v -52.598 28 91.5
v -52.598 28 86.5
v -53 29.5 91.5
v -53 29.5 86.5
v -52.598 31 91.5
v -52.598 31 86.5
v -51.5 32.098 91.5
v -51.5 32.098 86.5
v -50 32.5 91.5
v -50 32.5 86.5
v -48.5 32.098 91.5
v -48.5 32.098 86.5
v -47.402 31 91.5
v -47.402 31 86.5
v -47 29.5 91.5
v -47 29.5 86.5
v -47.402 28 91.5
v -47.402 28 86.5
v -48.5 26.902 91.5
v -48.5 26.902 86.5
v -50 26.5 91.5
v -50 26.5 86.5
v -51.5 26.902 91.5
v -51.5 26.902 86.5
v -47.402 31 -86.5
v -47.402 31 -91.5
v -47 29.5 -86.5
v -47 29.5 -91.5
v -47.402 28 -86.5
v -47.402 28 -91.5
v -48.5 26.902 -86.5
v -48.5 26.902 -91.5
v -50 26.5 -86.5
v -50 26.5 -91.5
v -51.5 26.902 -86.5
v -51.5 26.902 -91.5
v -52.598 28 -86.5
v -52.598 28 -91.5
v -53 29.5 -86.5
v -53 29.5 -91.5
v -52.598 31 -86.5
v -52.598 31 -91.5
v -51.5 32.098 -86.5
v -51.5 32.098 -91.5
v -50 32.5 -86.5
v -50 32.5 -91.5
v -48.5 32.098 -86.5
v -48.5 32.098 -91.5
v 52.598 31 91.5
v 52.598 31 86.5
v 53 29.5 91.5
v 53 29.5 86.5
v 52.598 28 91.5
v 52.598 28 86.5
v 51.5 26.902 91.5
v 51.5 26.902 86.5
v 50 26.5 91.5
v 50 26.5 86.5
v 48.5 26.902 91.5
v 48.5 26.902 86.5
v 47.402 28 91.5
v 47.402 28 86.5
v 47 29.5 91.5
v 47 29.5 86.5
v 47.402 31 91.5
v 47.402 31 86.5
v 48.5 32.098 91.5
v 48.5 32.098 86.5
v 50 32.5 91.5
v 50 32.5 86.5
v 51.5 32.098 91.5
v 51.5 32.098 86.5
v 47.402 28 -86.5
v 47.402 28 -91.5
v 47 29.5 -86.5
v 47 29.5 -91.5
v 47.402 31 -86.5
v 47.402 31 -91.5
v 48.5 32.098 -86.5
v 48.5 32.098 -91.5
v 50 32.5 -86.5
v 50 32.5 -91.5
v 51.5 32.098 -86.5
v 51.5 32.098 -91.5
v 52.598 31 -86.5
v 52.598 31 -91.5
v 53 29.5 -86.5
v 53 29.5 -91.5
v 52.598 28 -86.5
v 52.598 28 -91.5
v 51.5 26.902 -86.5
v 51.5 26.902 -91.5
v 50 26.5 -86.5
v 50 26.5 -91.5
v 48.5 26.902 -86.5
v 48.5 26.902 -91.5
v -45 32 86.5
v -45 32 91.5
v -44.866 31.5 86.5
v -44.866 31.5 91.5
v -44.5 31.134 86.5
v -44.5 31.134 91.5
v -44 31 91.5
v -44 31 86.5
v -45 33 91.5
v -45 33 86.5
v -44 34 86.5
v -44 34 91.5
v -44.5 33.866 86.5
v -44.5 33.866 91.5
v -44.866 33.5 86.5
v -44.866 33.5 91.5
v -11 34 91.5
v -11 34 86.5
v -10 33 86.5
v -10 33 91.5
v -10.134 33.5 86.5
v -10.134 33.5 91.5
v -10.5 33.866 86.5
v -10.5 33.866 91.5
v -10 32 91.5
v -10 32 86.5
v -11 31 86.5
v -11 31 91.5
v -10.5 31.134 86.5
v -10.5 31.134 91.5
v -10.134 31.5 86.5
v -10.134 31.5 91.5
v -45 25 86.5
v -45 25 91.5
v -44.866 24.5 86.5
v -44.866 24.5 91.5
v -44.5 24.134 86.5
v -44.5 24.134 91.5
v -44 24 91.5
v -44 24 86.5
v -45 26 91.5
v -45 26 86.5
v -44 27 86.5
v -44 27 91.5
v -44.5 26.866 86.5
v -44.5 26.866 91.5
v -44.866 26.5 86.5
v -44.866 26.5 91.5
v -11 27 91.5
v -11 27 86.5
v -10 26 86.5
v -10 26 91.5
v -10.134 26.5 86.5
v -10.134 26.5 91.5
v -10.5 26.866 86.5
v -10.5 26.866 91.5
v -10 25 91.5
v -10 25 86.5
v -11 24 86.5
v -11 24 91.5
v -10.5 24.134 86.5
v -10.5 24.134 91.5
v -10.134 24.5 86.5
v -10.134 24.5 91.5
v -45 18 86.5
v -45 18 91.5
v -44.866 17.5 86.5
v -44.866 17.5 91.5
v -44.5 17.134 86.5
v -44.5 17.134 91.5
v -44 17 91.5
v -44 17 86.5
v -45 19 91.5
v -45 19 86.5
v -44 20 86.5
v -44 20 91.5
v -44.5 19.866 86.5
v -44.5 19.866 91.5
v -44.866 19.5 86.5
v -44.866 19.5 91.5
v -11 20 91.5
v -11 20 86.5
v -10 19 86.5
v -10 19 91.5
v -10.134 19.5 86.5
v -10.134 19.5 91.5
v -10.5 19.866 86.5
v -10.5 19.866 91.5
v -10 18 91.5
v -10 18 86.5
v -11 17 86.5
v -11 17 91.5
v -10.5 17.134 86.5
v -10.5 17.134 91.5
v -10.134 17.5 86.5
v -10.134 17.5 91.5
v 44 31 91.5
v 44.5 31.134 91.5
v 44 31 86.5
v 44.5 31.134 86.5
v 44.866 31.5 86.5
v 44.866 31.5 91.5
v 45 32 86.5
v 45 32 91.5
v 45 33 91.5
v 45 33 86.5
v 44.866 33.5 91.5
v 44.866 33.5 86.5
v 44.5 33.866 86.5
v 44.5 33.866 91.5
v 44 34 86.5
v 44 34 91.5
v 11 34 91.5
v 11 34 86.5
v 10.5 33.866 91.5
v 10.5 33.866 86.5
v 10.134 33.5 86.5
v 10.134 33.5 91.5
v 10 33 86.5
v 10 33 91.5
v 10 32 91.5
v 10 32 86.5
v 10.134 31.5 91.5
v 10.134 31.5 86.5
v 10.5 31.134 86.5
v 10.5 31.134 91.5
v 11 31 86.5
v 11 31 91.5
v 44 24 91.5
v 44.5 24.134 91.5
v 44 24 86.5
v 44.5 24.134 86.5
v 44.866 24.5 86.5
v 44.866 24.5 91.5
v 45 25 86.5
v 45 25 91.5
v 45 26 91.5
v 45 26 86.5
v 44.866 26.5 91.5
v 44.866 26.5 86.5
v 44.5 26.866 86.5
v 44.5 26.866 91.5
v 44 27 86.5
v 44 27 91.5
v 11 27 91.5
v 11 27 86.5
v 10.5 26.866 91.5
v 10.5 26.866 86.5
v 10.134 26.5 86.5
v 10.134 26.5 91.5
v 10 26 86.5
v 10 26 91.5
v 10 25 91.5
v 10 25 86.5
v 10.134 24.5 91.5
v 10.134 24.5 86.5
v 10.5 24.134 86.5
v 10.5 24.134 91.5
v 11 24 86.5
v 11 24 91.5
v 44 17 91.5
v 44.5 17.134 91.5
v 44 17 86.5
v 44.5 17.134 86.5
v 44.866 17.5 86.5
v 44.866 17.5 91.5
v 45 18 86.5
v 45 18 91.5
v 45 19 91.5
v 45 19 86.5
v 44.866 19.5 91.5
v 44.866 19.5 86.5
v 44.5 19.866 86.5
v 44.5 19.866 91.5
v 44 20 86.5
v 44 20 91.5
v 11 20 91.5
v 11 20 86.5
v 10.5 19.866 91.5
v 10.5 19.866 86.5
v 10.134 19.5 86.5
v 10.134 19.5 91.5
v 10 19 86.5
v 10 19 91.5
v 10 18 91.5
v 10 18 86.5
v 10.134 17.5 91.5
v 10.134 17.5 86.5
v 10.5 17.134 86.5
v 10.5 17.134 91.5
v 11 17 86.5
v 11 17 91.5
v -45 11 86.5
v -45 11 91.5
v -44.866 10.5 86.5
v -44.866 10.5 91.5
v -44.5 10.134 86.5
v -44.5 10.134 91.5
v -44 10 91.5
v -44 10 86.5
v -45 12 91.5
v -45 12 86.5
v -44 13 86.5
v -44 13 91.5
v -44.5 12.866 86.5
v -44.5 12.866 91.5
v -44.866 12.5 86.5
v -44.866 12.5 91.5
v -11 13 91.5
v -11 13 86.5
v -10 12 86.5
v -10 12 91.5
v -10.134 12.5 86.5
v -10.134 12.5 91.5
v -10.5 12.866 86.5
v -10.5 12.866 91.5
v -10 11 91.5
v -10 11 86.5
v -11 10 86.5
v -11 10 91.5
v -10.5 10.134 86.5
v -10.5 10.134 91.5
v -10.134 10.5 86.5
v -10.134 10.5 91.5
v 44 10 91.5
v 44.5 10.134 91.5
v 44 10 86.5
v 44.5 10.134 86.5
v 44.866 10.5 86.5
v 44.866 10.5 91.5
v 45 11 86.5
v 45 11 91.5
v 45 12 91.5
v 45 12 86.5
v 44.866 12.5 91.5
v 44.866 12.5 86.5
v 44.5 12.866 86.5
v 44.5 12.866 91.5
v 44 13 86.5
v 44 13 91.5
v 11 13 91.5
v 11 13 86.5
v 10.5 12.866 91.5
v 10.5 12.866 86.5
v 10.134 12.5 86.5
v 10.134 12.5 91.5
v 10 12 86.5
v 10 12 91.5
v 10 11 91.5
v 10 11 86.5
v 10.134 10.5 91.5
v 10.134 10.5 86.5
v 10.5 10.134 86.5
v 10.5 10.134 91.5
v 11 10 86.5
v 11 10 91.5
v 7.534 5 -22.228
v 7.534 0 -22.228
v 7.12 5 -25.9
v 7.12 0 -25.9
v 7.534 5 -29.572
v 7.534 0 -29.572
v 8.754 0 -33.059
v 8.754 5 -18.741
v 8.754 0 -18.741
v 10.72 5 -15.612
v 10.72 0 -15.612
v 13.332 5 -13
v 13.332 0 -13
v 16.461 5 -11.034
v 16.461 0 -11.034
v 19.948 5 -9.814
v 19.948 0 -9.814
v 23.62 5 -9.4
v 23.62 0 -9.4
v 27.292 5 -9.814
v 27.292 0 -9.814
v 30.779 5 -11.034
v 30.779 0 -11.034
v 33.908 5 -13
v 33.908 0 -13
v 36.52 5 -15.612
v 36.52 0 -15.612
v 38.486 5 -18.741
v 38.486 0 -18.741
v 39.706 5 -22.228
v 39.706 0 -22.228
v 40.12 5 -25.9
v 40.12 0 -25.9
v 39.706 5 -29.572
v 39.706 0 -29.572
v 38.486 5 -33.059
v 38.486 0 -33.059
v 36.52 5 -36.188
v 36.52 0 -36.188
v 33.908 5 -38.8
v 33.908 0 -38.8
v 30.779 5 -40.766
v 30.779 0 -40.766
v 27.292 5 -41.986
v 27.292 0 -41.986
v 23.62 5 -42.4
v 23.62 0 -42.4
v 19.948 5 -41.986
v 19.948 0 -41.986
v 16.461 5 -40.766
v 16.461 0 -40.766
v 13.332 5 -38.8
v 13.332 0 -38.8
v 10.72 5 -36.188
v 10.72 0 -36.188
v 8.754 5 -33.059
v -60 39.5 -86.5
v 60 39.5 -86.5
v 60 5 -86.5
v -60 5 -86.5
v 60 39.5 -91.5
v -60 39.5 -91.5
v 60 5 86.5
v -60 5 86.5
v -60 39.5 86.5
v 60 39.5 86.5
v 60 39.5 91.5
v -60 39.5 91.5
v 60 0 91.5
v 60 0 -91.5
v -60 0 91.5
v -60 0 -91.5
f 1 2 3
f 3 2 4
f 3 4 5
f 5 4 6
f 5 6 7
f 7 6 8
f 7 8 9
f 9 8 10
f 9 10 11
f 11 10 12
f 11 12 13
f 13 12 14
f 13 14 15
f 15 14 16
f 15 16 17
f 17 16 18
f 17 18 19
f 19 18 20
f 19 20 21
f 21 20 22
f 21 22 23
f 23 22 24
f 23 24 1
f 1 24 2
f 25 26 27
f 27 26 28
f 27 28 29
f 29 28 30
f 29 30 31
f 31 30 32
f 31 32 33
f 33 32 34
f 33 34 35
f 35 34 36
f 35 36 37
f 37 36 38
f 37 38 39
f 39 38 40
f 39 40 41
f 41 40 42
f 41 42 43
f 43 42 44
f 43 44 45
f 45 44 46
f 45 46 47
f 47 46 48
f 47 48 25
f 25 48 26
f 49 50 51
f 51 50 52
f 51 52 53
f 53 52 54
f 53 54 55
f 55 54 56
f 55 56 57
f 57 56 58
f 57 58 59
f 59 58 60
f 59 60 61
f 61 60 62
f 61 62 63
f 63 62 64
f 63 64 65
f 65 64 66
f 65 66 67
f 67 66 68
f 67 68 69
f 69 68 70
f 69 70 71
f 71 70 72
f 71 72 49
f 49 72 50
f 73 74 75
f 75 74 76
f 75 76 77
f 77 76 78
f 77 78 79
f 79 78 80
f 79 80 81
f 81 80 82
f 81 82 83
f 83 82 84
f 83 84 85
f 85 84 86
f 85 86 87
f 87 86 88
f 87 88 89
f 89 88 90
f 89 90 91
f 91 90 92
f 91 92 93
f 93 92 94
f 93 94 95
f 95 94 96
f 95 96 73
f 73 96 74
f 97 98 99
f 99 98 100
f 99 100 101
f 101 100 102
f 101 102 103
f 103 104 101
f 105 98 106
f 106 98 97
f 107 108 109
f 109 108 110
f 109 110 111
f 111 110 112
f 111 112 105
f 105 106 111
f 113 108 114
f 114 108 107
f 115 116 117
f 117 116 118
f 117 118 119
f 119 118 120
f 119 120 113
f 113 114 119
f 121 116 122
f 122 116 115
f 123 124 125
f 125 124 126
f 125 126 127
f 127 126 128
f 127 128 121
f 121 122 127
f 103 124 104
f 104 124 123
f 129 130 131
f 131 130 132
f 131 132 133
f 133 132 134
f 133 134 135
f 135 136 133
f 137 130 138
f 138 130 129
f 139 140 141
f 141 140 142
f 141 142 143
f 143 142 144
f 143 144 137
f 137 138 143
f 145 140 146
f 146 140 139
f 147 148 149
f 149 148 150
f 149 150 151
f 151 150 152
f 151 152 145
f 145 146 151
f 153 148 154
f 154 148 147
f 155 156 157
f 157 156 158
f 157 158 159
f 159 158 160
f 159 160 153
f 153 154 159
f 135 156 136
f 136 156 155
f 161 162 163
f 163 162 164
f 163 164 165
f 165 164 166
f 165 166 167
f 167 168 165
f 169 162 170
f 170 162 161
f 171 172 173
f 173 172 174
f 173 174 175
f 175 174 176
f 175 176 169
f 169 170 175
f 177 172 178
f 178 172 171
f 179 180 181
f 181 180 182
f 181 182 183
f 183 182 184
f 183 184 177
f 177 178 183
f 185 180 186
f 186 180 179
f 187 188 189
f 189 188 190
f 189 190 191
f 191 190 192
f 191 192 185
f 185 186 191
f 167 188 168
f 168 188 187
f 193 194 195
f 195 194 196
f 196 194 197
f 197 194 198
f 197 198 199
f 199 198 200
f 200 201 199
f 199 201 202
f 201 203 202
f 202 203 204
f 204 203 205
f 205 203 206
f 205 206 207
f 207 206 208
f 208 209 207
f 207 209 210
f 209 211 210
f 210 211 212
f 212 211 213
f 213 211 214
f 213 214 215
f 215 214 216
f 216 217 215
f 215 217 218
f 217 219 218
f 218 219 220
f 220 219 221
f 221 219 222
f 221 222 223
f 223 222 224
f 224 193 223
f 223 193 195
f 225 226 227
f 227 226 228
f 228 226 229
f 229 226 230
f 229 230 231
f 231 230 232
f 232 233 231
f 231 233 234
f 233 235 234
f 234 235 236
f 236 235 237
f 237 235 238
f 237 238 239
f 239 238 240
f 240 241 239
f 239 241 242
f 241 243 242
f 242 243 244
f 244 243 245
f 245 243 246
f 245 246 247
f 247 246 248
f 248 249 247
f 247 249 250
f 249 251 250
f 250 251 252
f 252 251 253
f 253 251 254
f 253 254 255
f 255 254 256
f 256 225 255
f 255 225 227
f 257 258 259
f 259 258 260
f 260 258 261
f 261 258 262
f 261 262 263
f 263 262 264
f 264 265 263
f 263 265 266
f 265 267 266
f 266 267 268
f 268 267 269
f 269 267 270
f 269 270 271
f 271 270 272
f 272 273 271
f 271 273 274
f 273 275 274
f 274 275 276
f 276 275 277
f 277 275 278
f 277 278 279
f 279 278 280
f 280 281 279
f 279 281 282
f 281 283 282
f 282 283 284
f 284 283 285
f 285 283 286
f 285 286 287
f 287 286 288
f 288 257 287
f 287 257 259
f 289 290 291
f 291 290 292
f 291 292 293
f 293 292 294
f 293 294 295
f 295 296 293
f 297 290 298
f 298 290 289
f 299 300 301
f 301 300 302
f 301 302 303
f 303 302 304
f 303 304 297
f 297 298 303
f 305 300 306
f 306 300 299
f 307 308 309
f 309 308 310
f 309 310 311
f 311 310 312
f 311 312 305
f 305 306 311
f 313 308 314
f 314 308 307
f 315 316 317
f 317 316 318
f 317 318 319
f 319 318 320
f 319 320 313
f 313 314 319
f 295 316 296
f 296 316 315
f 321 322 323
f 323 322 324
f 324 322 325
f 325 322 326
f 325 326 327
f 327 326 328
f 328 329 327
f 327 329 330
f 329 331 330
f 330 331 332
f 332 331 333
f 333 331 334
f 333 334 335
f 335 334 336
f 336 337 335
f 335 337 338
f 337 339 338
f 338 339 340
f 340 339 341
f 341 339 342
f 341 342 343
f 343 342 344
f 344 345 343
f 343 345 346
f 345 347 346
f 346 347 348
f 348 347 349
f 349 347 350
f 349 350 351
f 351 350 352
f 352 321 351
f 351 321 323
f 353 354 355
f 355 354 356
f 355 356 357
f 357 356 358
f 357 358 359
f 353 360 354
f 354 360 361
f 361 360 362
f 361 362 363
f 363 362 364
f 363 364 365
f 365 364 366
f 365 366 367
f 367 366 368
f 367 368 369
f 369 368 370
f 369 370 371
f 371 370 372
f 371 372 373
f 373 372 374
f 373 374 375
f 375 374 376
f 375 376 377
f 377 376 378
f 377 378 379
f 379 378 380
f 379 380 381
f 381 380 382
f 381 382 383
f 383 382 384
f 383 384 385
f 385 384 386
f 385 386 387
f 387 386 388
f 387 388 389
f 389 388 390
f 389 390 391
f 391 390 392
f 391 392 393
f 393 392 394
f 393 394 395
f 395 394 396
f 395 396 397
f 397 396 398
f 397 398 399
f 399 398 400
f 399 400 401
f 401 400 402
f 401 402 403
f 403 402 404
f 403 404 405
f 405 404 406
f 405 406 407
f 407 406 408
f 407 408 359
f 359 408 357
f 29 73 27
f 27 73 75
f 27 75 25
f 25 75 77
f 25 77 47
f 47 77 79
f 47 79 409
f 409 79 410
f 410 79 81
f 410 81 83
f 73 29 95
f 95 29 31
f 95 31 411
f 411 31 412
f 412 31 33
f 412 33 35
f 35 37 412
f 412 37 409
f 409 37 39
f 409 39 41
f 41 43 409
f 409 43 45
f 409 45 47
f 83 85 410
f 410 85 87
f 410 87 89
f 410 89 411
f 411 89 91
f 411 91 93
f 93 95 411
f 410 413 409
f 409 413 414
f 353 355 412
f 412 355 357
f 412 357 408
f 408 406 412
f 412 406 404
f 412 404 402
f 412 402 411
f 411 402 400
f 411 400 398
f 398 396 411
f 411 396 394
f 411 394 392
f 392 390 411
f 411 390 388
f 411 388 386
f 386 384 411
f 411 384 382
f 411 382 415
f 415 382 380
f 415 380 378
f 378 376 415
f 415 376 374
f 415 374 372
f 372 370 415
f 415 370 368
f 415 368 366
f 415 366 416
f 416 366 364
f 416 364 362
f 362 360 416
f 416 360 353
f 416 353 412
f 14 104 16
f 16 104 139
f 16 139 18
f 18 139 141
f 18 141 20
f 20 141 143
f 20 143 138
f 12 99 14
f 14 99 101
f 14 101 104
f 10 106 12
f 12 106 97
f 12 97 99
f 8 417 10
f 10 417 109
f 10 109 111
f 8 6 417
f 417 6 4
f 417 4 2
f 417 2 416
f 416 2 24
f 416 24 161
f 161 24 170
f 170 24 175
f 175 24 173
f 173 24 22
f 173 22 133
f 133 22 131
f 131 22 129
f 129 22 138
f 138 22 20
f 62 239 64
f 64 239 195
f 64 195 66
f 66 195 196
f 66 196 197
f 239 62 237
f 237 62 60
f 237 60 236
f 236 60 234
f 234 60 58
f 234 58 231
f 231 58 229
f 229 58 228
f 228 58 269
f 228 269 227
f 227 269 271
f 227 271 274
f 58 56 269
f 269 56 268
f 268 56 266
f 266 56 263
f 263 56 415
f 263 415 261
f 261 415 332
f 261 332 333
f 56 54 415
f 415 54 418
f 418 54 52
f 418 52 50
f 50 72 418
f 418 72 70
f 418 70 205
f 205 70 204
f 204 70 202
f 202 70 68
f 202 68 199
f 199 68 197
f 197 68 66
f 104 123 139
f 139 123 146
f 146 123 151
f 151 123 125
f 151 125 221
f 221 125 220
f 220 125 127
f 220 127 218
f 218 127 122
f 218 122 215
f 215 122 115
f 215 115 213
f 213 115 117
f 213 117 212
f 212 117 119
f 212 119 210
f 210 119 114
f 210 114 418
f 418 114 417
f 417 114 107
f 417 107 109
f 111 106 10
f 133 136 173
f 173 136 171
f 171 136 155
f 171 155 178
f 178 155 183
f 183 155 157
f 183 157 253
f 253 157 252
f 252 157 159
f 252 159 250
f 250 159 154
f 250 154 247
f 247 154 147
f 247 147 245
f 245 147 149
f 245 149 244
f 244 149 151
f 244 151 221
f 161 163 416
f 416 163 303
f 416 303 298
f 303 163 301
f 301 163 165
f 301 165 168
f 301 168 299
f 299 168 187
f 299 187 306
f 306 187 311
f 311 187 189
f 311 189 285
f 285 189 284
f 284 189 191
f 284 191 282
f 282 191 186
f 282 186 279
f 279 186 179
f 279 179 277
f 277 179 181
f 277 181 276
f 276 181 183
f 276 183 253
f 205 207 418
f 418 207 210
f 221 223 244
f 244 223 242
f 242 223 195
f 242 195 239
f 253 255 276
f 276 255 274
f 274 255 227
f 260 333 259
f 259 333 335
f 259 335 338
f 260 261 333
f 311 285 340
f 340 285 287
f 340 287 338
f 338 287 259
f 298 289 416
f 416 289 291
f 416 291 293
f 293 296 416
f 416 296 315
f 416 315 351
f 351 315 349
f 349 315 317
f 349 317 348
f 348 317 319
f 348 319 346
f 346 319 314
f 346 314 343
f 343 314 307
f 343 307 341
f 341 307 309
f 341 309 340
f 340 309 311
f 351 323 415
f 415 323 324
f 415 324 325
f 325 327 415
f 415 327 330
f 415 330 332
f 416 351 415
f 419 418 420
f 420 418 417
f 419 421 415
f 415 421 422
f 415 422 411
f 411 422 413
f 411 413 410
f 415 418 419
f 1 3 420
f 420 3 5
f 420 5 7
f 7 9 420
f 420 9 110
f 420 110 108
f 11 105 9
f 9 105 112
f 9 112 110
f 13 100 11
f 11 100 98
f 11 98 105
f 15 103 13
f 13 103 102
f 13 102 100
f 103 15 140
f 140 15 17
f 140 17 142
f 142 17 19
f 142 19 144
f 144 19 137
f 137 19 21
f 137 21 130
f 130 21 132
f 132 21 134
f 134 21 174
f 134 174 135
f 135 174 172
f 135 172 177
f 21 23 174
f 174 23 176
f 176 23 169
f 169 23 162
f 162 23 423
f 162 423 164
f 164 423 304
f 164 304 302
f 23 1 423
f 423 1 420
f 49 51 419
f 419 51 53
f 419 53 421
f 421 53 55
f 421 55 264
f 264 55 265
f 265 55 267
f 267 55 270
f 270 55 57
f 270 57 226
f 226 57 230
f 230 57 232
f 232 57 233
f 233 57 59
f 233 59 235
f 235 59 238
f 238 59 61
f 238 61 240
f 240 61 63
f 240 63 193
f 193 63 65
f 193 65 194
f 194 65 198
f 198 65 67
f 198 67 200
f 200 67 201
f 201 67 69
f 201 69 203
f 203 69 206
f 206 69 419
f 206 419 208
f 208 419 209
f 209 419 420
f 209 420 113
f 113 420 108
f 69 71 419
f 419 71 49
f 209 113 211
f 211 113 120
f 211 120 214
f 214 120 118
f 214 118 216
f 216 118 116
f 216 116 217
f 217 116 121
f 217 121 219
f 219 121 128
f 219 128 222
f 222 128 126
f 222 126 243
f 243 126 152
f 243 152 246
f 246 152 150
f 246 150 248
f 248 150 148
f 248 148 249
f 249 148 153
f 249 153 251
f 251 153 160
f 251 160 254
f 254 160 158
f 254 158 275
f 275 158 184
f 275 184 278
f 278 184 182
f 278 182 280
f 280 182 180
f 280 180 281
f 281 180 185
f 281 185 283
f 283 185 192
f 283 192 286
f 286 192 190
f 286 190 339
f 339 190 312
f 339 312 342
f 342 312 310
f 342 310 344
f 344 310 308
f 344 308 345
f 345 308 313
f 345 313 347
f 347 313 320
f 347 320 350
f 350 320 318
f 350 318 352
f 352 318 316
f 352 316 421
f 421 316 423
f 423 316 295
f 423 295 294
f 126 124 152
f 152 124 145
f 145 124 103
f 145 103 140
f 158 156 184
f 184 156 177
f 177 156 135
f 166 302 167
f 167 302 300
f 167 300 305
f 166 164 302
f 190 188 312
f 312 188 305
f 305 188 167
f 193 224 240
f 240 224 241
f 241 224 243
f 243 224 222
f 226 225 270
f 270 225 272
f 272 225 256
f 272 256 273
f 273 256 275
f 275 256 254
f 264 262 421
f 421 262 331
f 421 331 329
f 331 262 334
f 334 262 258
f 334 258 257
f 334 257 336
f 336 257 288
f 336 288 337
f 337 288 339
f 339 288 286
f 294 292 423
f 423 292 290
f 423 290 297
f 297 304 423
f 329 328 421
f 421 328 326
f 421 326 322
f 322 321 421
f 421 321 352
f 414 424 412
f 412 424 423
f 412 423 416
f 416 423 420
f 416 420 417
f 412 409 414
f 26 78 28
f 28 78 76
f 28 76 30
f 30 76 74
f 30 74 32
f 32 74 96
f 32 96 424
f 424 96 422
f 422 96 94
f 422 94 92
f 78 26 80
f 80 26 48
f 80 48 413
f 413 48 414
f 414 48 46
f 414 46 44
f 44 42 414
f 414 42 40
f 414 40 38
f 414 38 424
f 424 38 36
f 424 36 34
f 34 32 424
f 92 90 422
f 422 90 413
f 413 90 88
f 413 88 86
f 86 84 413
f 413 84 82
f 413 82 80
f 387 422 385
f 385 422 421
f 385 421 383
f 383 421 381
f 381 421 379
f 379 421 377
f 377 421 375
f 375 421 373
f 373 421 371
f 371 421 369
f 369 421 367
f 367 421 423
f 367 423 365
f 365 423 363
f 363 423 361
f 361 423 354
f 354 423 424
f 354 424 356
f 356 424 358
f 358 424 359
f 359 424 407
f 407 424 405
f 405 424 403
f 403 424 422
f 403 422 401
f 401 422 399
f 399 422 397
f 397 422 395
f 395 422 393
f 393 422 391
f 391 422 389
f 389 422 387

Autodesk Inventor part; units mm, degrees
ref_plane "YZ Plane" through (0, 0, 0) normal (1, 0, 0) x (0, 1, 0)
ref_plane "XZ Plane" through (0, 0, 0) normal (0, 1, 0) x (-1, 0, 0)
ref_plane "XY Plane" through (0, 0, 0) normal (0, 0, 1) x (1, 0, 0)
sketch "Sketch1" plane through (0, 0, 0) normal (0, 1, 0) x (-1, 0, 0)
  line L0 (-60, 91.5) -> (60, 91.5)
  line L1 (60, 91.5) -> (60, -91.5)
  line L2 (60, -91.5) -> (-60, -91.5)
  line L3 (-60, -91.5) -> (-60, 91.5)
  line L4 (-60, 91.5) -> (60, -91.5) construction
  line L5 (60, 91.5) -> (-60, -91.5) construction
  point P0 (0, 0)
  dimension "d0" = 120
  dimension "d1" = 183
extrude "Extrusion1" add sketch "Sketch1" along normal blind 5
sketch "Sketch2" plane through (0, 5, 0) normal (0, 1, 0) x (1, 0, 0)
  line L0 (-60, 91.5) -> (-60, -91.5) projected
  line L1 (60, -91.5) -> (60, 91.5) projected
  line L2 (-60, -91.5) -> (60, -91.5)
  line L3 (60, -91.5) -> (60, -86.5)
  line L4 (60, -86.5) -> (-60, -86.5)
  line L5 (-60, -86.5) -> (-60, -91.5)
  point P0 (0, 0)
  dimension "d4" = 5
extrude "Extrusion2" add sketch "Sketch2" along normal blind 34.5
sketch "Sketch3" plane through (0, 5, 0) normal (0, 1, 0) x (1, 0, 0)
  line L0 (60, 91.5) -> (-60, 91.5) projected
  line L1 (60, -91.5) -> (60, 91.5) projected
  line L2 (-60, 91.5) -> (60, 91.5)
  line L3 (60, 91.5) -> (60, 86.5)
  line L4 (60, 86.5) -> (-60, 86.5)
  line L5 (-60, 86.5) -> (-60, 91.5)
  point P0 (0, 0)
  dimension "d7" = 5
extrude "Extrusion3" add sketch "Sketch3" along normal blind 34.5
sketch "Sketch4" plane through (0, 0, 0) normal (0, -1, 0) x (1, 0, 0)
  circle A0 centre (23.62, -25.9) radius 16.5
  line L0 (-60, 91.5) -> (60, 91.5) projected
  line L1 (-60, -91.5) -> (-60, 91.5) projected
  point P0 (0, 0)
  dimension "d11" = 33
  dimension "d14" = 117.4
  dimension "d15" = 83.62
extrude "Extrusion4" cut sketch "Sketch4" against normal through all
sketch "Sketch5" plane through (-60, 0, 91.5) normal (0, 0, 1) x (1, 0, 0)
  line L0 (104, 10) -> (71, 10)
  line L1 (70, 11) -> (70, 12)
  line L2 (71, 13) -> (104, 13)
  line L3 (105, 12) -> (105, 11)
  line L4 (120, 0) -> (120, 39.5) projected
  line L5 (0, 0) -> (120, 0) projected
  arc A0 (104, 10) -> (105, 11) centre (104, 11) ccw
  arc A1 (105, 12) -> (104, 13) centre (104, 12) ccw
  arc A2 (70, 11) -> (71, 10) centre (71, 11) ccw
  arc A3 (71, 13) -> (70, 12) centre (71, 12) ccw
  point P0 (60, 0)
  point P1 (105, 10)
  point P2 (70, 13)
  point P3 (70, 10)
  point P4 (105, 13)
  dimension "d16" = 15
  dimension "d17" = 10
  dimension "d18" = 3
  dimension "d19" = 35
  dimension "d22" = 1
extrude "Extrusion5" cut sketch "Sketch5" against normal blind 5
mirror "Mirror1" about plane through (0, 0, 0) normal (1, 0, 0) of "Extrusion5"
pattern_linear "Rectangular Pattern1" count 4 spacing 7 along (0, 1, 0) of "Extrusion5", "Mirror1", "Extrusion4"
sketch "Sketch6" plane through (-60, 0, 91.5) normal (0, 0, 1) x (1, 0, 0)
  circle A0 centre (110, 29.5) radius 3
  line L0 (120, 0) -> (120, 39.5) projected
  line L1 (0, 39.5) -> (120, 39.5) projected
  point P0 (60, 0)
  dimension "d26" = 6
  dimension "d27" = 10
  dimension "d28" = 10
extrude "Extrusion6" cut sketch "Sketch6" against normal through all
mirror "Mirror2" about plane through (0, 0, 0) normal (1, 0, 0) of "Extrusion6"
properties part number "Caja2"
